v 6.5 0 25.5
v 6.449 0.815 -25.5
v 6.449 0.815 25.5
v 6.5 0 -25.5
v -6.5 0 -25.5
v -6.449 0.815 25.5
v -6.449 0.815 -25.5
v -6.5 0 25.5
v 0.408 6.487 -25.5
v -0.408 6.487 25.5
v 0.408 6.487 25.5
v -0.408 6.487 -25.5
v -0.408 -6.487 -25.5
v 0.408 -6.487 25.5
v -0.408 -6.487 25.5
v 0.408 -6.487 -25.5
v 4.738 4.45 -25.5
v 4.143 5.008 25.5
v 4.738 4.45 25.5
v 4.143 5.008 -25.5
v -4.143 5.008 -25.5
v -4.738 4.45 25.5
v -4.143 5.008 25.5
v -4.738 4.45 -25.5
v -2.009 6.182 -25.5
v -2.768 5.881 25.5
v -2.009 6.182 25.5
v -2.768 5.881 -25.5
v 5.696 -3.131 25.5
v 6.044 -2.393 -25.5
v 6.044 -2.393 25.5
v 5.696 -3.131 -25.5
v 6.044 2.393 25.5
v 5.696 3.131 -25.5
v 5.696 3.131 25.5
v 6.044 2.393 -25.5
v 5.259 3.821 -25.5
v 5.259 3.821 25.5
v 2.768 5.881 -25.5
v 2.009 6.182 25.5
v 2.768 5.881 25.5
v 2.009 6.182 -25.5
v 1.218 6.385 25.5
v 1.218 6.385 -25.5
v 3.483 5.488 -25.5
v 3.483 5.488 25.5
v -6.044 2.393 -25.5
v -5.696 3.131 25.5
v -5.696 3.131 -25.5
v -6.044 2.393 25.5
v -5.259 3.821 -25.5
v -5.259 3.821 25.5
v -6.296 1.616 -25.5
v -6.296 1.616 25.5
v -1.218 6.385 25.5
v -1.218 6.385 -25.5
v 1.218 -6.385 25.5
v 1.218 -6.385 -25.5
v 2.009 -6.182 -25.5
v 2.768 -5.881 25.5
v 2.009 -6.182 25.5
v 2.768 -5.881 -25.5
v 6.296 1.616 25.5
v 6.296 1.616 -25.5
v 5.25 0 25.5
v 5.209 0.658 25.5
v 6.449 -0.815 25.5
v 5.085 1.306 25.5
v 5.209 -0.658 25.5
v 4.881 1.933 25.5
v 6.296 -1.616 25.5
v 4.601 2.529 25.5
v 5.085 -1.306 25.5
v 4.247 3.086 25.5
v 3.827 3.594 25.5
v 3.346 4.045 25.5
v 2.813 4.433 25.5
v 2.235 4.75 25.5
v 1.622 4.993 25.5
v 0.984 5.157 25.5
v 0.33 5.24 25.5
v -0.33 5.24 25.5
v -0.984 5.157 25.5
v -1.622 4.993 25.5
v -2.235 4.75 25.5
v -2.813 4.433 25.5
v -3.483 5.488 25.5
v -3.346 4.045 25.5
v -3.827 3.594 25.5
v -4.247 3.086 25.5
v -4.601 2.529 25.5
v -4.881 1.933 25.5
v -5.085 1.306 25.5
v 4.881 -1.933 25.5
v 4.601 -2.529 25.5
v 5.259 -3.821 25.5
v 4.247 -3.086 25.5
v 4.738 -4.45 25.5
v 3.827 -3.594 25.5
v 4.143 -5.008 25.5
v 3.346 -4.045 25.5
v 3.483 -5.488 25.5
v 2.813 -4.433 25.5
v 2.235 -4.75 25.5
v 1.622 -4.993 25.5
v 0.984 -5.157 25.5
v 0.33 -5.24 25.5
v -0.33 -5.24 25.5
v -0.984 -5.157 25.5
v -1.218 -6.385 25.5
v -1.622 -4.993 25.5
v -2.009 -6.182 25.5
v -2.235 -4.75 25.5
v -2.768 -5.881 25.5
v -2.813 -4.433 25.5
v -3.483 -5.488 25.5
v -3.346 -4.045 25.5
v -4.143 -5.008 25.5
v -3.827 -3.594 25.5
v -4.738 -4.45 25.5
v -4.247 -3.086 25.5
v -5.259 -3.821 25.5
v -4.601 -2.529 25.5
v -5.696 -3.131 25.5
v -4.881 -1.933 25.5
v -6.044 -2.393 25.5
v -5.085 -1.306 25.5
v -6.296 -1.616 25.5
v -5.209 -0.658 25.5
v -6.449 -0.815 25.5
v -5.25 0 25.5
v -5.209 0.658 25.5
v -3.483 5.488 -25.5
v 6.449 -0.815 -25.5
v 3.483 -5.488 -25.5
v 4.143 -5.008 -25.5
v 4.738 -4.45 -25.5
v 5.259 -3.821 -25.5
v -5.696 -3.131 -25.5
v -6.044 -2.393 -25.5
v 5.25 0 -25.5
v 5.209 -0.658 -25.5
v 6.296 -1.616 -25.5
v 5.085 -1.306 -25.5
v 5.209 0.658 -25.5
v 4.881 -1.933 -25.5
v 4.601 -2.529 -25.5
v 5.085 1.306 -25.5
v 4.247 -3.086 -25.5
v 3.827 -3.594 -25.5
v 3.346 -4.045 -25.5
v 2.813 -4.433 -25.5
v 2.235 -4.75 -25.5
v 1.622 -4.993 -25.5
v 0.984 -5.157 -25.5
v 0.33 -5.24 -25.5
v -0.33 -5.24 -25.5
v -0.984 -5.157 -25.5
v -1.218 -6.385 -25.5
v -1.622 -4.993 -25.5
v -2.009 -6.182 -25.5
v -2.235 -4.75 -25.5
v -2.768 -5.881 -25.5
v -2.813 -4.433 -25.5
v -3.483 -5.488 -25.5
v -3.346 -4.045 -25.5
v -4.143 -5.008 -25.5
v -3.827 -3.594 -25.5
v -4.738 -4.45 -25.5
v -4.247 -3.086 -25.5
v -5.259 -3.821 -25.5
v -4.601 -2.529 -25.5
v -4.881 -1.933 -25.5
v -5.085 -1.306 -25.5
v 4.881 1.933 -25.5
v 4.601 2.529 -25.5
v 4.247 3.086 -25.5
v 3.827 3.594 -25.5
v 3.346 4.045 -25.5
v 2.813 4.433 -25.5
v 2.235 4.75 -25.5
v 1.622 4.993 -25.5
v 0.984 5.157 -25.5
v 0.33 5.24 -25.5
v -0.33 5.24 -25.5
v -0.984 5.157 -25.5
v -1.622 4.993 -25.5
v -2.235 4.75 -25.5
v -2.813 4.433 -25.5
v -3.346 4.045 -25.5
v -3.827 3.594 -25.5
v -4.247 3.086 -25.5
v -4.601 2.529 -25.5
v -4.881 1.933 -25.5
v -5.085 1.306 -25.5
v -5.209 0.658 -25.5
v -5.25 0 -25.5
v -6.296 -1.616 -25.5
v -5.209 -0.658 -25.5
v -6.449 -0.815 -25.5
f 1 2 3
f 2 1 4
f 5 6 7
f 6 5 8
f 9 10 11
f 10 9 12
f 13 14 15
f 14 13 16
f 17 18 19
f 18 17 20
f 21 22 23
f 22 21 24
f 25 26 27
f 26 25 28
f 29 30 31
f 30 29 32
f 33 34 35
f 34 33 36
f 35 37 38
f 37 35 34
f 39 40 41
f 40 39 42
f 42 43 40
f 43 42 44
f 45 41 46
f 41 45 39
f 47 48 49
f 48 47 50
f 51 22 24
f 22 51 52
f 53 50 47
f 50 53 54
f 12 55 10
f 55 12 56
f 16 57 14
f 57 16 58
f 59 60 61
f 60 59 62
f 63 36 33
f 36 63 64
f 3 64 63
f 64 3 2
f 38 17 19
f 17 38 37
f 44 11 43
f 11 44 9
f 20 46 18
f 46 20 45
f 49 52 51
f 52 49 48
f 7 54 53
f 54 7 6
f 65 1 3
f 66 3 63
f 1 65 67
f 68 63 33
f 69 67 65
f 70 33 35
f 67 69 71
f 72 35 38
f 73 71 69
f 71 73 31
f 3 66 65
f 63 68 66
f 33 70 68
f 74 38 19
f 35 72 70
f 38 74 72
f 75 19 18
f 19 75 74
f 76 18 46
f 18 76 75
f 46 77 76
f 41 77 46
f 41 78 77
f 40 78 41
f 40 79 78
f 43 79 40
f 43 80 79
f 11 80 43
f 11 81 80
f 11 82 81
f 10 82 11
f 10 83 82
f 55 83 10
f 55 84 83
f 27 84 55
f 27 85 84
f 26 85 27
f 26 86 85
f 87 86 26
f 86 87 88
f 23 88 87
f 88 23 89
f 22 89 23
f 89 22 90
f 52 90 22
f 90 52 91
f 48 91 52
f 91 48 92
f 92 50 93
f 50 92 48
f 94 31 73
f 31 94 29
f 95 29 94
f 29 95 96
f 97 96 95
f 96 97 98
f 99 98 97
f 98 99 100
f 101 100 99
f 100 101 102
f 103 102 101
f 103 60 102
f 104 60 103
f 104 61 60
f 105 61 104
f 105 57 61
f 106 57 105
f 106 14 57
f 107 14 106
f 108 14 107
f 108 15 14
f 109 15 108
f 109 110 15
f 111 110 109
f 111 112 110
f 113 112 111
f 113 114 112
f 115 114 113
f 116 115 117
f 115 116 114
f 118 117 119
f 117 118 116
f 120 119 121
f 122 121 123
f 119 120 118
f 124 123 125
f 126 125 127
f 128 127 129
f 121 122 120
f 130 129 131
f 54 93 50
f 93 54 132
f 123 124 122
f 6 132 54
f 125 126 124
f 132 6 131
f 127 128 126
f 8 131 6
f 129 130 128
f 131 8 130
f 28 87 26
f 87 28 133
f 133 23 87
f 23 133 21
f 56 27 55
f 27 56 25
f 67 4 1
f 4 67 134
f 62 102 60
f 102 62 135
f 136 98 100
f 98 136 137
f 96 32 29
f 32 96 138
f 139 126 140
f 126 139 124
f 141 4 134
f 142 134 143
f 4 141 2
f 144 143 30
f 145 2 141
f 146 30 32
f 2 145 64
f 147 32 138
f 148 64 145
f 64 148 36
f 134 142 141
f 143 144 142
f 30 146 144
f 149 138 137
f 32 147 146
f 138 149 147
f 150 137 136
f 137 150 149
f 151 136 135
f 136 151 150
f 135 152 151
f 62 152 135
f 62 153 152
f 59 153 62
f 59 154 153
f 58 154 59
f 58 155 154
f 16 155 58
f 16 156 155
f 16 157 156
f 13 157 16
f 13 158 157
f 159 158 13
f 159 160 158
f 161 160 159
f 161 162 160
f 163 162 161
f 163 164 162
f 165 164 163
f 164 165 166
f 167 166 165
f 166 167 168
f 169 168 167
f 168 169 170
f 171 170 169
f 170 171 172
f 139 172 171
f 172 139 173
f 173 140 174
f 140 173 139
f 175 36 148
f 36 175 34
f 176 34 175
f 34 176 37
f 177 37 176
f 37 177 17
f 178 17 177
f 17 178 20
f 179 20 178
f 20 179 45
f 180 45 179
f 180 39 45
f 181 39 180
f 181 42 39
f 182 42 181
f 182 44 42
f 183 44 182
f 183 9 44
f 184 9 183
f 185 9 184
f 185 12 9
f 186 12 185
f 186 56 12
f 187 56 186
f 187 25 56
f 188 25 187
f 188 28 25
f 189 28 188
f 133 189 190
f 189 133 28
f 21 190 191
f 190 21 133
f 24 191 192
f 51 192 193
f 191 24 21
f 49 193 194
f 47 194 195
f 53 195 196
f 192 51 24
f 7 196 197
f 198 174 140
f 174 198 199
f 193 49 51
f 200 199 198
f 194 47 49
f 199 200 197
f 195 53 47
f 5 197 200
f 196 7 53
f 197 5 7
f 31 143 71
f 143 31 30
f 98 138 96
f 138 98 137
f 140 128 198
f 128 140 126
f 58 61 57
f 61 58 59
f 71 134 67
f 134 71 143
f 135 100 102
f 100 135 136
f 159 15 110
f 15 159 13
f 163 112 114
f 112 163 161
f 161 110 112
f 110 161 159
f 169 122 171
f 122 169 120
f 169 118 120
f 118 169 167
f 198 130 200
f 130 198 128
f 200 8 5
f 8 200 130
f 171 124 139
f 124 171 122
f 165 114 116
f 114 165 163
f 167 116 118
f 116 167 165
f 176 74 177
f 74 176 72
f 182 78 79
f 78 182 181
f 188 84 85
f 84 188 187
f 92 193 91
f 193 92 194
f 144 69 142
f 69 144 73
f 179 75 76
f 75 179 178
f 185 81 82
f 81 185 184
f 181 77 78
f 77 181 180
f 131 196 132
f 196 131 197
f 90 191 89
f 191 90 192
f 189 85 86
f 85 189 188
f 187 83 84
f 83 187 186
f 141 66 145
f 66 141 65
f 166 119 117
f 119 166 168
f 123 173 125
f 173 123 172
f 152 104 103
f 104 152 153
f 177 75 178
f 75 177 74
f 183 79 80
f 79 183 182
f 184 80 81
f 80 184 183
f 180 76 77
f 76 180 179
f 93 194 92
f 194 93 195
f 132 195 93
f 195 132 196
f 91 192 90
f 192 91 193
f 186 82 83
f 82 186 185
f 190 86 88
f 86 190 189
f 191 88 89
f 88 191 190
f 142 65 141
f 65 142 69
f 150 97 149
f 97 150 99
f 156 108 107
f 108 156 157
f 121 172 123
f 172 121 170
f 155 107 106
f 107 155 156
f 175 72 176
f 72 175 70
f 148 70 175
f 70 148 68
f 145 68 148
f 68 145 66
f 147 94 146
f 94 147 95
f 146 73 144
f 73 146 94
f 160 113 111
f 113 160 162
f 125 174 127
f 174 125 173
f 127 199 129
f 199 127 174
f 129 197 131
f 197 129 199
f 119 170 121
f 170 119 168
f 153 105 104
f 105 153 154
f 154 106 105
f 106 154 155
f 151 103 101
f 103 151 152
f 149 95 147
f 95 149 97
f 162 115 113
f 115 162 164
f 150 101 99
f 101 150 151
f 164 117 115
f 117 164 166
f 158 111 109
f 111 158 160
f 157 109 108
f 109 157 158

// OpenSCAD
$fn = 50;


difference() {
	union() {
		translate(v = [0, 0, -25.5000000000]) {
			cylinder(h = 51, r = 6.5000000000);
		}
	}
	union() {
		translate(v = [0, 0, -100.0000000000]) {
			cylinder(h = 200, r = 5.2500000000);
		}
	}
}
